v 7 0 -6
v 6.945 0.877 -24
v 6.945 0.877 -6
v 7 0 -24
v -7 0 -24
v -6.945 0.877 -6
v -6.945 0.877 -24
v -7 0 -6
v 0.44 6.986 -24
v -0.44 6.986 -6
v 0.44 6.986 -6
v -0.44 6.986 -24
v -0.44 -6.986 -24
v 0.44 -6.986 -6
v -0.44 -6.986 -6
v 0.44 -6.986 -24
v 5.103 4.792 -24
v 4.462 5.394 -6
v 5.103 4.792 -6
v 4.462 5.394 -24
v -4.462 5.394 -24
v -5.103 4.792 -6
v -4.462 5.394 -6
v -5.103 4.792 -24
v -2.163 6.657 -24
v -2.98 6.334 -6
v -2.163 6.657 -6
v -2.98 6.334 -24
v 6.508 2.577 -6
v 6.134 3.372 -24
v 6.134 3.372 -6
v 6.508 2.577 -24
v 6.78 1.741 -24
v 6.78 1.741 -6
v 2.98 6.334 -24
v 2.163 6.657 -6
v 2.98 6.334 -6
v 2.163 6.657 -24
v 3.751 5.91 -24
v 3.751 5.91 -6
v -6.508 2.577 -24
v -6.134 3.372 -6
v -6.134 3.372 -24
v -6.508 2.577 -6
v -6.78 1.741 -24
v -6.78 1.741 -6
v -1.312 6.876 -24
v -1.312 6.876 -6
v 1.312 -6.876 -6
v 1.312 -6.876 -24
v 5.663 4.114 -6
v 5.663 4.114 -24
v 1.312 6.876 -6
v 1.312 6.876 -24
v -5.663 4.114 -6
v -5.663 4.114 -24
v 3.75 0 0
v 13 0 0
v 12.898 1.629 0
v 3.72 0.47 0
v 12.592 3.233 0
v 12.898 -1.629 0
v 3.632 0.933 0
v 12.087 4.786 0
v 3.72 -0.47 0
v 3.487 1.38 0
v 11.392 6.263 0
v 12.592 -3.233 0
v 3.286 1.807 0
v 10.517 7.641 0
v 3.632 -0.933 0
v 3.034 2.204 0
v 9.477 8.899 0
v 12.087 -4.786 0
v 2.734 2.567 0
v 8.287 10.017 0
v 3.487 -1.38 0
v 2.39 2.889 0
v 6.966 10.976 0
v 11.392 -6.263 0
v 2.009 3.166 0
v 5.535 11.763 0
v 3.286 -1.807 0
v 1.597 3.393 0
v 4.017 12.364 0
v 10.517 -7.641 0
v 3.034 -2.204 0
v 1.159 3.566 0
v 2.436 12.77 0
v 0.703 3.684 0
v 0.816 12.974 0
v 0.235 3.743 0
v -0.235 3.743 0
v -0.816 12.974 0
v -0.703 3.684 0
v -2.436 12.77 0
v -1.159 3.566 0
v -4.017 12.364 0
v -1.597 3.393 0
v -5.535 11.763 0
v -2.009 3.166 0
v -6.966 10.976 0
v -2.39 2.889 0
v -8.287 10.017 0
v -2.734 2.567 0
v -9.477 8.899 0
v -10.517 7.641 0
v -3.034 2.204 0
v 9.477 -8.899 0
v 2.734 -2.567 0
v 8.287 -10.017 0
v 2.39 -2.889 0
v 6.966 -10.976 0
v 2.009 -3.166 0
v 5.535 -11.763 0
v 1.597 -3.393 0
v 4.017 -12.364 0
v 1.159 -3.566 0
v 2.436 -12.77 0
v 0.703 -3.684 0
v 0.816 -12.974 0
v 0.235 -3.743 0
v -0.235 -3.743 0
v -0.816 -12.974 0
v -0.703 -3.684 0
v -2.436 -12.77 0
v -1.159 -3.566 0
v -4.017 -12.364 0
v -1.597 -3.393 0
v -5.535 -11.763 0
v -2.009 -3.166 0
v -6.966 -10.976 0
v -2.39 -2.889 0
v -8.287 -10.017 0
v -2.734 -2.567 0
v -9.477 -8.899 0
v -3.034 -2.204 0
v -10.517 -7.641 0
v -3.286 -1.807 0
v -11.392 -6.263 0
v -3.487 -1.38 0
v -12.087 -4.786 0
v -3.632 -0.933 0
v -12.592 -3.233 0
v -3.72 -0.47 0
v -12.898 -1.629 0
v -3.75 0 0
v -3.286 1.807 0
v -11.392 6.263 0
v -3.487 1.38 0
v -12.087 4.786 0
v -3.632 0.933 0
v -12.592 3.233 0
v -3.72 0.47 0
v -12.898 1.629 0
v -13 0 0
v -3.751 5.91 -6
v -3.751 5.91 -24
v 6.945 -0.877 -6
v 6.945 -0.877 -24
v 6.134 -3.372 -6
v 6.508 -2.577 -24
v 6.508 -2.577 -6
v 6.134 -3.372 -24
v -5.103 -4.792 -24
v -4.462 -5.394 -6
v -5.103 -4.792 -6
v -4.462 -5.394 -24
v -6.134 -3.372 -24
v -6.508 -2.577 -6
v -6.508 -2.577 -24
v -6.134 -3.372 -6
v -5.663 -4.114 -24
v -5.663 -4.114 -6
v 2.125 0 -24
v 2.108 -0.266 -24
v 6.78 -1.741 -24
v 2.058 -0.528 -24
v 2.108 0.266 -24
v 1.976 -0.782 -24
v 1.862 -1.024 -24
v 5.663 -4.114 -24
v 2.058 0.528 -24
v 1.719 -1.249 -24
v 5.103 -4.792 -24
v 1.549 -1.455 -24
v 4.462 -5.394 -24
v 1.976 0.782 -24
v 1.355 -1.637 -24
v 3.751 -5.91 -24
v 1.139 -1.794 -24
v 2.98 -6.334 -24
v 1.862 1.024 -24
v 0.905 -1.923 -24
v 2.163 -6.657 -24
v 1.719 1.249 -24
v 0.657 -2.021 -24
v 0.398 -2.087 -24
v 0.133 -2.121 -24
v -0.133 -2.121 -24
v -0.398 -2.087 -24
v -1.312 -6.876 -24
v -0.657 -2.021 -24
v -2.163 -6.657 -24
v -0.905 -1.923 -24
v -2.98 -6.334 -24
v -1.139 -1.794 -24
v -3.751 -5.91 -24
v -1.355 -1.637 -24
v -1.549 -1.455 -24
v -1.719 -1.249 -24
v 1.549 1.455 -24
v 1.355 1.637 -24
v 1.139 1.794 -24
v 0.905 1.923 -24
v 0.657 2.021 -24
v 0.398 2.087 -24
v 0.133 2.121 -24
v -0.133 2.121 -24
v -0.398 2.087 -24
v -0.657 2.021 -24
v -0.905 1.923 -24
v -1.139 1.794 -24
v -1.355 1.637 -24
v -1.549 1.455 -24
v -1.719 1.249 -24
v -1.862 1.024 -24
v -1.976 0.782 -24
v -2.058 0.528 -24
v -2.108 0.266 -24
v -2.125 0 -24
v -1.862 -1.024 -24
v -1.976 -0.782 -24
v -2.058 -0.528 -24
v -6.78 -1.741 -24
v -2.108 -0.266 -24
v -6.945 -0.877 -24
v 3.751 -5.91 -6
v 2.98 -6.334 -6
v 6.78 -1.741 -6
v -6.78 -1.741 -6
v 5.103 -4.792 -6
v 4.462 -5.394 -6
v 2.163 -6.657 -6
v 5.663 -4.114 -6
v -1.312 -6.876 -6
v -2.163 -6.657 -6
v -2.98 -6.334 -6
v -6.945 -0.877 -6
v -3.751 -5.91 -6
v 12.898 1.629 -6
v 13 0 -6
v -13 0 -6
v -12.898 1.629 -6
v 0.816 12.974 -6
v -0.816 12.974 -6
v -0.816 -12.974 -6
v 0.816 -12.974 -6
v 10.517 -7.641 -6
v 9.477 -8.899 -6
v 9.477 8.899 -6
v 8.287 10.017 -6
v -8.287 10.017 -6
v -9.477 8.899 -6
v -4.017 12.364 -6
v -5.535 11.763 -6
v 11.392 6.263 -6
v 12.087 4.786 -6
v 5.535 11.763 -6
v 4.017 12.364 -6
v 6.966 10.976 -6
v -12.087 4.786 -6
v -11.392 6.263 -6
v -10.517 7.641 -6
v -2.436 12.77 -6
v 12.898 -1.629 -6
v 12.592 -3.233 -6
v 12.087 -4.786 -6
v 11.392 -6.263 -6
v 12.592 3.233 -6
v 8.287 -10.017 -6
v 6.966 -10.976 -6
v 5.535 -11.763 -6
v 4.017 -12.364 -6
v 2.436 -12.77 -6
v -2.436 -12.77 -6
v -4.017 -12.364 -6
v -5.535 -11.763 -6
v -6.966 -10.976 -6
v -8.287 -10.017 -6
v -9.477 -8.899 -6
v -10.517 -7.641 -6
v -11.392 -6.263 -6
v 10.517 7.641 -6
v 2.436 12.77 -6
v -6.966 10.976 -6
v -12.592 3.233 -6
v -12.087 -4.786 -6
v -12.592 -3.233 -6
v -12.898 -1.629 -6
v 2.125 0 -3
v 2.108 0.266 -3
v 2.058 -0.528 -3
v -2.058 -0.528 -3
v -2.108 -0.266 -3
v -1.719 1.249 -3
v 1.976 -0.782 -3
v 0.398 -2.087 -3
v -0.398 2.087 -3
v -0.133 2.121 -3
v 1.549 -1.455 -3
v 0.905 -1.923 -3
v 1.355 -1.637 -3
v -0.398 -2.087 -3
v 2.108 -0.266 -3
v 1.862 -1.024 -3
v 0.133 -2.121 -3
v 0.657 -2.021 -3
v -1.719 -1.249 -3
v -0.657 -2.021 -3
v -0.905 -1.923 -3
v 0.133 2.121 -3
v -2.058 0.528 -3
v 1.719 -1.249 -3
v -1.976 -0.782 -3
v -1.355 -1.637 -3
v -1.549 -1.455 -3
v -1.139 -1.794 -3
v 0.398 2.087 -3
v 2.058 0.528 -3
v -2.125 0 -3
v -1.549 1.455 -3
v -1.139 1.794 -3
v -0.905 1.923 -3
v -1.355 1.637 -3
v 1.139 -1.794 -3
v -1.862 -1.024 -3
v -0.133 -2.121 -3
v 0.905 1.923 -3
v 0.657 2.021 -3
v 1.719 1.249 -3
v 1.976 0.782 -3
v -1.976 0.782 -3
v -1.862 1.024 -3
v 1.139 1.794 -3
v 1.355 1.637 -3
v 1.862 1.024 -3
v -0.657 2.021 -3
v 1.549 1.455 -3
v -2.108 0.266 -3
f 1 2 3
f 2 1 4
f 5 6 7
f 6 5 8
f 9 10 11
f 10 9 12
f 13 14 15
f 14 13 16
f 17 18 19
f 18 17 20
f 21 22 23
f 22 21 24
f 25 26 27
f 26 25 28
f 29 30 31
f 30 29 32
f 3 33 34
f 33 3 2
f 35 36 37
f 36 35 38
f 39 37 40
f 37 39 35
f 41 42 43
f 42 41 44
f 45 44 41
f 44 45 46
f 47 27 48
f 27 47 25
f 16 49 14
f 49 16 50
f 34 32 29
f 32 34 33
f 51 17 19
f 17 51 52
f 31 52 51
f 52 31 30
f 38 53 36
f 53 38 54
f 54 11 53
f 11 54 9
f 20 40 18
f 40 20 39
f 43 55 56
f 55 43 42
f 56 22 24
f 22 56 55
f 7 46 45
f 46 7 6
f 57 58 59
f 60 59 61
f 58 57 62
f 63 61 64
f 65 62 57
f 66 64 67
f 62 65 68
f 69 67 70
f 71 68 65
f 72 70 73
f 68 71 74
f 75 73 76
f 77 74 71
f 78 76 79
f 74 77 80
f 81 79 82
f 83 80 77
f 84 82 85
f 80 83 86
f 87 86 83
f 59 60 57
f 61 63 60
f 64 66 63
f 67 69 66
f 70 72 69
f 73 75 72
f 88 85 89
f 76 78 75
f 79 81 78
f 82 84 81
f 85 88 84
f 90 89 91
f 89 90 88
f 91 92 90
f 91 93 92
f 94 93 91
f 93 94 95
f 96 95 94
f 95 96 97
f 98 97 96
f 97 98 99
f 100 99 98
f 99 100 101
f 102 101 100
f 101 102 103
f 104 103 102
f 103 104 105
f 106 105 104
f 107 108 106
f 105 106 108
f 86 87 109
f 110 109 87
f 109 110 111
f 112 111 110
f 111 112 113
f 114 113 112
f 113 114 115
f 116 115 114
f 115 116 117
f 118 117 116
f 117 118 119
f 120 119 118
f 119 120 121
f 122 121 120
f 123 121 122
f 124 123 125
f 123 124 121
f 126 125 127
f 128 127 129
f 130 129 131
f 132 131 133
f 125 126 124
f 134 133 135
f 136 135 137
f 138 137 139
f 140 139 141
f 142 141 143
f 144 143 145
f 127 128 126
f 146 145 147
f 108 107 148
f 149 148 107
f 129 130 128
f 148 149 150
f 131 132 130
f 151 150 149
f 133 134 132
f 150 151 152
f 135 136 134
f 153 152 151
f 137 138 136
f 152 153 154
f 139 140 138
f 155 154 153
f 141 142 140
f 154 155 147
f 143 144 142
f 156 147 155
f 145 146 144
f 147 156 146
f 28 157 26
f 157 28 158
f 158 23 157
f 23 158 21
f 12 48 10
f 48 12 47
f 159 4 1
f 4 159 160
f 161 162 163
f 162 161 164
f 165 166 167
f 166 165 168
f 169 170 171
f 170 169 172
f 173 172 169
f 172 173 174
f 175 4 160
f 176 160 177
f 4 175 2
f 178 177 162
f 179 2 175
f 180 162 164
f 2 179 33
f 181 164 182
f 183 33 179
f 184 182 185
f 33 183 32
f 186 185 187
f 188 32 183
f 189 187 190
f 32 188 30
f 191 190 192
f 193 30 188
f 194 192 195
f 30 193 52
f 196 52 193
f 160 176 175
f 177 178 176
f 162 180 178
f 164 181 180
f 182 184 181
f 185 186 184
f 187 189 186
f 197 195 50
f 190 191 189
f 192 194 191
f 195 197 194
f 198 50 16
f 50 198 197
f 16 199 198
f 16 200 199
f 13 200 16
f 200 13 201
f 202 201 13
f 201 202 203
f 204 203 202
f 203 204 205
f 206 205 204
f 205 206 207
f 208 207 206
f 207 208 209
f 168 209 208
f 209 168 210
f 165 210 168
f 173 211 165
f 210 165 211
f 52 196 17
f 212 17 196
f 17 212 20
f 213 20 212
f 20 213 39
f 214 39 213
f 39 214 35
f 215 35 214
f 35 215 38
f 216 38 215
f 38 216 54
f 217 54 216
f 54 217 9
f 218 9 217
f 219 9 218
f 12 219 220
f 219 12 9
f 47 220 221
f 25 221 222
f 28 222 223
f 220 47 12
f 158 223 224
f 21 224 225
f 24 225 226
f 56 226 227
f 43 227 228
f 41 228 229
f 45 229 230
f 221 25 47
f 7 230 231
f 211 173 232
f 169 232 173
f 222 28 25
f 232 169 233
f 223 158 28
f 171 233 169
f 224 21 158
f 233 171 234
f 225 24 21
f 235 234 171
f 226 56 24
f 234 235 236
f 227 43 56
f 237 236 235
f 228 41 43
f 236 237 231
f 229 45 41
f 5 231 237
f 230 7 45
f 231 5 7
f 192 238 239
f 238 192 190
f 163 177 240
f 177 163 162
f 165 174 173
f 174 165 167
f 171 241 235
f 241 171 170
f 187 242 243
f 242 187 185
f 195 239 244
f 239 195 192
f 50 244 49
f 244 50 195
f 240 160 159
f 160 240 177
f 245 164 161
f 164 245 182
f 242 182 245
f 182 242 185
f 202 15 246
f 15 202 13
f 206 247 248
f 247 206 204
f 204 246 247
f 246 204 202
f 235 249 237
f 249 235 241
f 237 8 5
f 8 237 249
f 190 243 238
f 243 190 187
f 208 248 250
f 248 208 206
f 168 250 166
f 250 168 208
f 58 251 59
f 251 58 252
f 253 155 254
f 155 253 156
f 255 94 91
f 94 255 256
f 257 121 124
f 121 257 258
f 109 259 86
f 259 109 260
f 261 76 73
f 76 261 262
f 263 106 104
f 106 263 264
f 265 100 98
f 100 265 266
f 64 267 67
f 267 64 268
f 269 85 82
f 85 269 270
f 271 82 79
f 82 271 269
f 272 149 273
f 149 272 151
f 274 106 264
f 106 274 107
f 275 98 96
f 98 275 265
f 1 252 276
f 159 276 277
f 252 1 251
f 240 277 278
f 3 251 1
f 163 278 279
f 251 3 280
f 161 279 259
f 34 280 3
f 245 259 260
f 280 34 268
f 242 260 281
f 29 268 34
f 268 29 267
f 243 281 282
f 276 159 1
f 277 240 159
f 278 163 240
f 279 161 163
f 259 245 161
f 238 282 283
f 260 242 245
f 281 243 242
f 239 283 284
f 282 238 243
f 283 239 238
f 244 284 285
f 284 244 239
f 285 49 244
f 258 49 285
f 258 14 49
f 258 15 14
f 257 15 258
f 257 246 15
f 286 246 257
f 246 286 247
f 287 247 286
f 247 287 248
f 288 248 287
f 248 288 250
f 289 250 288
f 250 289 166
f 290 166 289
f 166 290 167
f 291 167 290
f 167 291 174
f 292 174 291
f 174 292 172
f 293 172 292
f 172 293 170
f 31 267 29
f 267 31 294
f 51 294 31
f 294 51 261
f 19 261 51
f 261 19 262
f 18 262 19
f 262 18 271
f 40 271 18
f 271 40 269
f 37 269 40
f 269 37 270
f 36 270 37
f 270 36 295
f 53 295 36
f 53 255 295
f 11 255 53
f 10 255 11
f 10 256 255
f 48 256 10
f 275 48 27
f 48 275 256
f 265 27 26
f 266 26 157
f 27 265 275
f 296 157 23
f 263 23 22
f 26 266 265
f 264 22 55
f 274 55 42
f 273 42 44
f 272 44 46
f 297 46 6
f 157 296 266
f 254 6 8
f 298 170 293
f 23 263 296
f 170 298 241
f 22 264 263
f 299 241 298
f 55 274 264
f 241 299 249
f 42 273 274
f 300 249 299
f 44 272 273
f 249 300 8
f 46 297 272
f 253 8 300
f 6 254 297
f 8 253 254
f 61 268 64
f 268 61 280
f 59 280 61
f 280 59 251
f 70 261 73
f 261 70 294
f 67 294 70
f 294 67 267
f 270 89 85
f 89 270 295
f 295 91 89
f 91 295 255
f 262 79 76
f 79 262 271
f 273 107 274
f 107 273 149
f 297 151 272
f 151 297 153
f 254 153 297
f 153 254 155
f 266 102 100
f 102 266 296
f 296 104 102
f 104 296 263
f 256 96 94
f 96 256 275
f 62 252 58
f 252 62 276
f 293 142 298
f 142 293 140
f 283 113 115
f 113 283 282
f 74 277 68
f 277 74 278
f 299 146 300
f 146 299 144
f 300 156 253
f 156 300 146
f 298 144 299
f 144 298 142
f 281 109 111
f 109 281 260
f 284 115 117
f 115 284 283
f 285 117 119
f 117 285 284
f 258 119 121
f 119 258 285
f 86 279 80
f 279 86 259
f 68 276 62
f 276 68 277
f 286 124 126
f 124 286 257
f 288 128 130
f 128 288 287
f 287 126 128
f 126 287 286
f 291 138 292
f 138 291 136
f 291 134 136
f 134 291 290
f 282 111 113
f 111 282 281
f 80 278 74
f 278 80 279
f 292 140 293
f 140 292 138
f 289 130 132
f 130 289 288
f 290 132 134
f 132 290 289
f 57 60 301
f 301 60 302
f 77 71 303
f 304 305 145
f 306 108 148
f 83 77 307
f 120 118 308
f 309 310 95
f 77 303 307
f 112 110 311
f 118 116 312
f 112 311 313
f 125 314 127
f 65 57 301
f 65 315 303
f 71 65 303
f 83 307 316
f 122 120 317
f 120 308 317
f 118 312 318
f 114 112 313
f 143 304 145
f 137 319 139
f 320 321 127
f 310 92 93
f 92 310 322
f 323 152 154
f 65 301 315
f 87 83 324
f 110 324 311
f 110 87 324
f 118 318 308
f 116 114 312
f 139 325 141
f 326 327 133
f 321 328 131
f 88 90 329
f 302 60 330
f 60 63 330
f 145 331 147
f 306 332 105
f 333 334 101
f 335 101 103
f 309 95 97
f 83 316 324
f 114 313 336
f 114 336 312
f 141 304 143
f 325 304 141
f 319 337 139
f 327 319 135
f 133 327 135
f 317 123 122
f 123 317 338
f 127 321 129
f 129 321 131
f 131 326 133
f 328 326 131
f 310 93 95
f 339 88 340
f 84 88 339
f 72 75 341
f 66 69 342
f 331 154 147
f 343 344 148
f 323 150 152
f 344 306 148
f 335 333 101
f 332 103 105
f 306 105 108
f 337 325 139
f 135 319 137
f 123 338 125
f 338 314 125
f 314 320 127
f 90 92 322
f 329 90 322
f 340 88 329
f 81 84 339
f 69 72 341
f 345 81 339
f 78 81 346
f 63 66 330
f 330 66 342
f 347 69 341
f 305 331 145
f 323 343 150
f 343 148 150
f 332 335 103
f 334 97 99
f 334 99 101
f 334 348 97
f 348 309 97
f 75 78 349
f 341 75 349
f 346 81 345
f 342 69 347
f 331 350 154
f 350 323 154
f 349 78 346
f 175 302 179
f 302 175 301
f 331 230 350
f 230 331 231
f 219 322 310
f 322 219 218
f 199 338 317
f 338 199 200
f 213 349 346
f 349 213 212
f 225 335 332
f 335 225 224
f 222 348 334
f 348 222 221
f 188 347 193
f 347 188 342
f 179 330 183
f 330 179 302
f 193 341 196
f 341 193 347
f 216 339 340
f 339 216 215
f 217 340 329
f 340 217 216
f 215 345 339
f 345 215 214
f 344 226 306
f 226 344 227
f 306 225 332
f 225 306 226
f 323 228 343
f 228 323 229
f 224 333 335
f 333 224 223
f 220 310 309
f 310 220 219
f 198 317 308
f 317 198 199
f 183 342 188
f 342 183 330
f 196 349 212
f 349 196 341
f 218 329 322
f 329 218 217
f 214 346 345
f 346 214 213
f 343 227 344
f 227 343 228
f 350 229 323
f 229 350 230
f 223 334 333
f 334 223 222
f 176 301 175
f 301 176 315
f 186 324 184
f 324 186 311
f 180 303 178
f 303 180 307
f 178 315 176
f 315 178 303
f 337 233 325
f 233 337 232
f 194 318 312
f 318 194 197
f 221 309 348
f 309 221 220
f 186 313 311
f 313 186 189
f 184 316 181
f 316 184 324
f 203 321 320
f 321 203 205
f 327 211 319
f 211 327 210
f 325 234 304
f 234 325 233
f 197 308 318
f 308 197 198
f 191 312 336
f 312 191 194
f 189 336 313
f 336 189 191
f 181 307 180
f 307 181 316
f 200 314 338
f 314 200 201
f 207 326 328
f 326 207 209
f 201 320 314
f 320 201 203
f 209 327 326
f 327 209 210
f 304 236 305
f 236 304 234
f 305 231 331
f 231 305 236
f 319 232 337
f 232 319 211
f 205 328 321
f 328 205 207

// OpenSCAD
$fn = 50;


difference() {
	union() {
		translate(v = [0, 0, -24.0000000000]) {
			cylinder(h = 24, r = 7.0000000000);
		}
		translate(v = [0, 0, -6.0000000000]) {
			cylinder(h = 6, r = 13.0000000000);
		}
	}
	union() {
		translate(v = [0, 0, 0]) {
			rotate(a = [0, 0, 0]) {
				difference() {
					union() {
						#translate(v = [0, 0, -24.0000000000]) {
							cylinder(h = 24, r = 2.0000000000);
						}
						#translate(v = [0, 0, -3]) {
							cylinder(h = 3, r1 = 2.1250000000, r2 = 3.7500000000);
						}
						#translate(v = [0, 0, -24.0000000000]) {
							cylinder(h = 24, r = 2.1250000000);
						}
						#translate(v = [0, 0, -24.0000000000]) {
							cylinder(h = 24, r = 2.0000000000);
						}
					}
					union();
				}
			}
		}
	}
}
